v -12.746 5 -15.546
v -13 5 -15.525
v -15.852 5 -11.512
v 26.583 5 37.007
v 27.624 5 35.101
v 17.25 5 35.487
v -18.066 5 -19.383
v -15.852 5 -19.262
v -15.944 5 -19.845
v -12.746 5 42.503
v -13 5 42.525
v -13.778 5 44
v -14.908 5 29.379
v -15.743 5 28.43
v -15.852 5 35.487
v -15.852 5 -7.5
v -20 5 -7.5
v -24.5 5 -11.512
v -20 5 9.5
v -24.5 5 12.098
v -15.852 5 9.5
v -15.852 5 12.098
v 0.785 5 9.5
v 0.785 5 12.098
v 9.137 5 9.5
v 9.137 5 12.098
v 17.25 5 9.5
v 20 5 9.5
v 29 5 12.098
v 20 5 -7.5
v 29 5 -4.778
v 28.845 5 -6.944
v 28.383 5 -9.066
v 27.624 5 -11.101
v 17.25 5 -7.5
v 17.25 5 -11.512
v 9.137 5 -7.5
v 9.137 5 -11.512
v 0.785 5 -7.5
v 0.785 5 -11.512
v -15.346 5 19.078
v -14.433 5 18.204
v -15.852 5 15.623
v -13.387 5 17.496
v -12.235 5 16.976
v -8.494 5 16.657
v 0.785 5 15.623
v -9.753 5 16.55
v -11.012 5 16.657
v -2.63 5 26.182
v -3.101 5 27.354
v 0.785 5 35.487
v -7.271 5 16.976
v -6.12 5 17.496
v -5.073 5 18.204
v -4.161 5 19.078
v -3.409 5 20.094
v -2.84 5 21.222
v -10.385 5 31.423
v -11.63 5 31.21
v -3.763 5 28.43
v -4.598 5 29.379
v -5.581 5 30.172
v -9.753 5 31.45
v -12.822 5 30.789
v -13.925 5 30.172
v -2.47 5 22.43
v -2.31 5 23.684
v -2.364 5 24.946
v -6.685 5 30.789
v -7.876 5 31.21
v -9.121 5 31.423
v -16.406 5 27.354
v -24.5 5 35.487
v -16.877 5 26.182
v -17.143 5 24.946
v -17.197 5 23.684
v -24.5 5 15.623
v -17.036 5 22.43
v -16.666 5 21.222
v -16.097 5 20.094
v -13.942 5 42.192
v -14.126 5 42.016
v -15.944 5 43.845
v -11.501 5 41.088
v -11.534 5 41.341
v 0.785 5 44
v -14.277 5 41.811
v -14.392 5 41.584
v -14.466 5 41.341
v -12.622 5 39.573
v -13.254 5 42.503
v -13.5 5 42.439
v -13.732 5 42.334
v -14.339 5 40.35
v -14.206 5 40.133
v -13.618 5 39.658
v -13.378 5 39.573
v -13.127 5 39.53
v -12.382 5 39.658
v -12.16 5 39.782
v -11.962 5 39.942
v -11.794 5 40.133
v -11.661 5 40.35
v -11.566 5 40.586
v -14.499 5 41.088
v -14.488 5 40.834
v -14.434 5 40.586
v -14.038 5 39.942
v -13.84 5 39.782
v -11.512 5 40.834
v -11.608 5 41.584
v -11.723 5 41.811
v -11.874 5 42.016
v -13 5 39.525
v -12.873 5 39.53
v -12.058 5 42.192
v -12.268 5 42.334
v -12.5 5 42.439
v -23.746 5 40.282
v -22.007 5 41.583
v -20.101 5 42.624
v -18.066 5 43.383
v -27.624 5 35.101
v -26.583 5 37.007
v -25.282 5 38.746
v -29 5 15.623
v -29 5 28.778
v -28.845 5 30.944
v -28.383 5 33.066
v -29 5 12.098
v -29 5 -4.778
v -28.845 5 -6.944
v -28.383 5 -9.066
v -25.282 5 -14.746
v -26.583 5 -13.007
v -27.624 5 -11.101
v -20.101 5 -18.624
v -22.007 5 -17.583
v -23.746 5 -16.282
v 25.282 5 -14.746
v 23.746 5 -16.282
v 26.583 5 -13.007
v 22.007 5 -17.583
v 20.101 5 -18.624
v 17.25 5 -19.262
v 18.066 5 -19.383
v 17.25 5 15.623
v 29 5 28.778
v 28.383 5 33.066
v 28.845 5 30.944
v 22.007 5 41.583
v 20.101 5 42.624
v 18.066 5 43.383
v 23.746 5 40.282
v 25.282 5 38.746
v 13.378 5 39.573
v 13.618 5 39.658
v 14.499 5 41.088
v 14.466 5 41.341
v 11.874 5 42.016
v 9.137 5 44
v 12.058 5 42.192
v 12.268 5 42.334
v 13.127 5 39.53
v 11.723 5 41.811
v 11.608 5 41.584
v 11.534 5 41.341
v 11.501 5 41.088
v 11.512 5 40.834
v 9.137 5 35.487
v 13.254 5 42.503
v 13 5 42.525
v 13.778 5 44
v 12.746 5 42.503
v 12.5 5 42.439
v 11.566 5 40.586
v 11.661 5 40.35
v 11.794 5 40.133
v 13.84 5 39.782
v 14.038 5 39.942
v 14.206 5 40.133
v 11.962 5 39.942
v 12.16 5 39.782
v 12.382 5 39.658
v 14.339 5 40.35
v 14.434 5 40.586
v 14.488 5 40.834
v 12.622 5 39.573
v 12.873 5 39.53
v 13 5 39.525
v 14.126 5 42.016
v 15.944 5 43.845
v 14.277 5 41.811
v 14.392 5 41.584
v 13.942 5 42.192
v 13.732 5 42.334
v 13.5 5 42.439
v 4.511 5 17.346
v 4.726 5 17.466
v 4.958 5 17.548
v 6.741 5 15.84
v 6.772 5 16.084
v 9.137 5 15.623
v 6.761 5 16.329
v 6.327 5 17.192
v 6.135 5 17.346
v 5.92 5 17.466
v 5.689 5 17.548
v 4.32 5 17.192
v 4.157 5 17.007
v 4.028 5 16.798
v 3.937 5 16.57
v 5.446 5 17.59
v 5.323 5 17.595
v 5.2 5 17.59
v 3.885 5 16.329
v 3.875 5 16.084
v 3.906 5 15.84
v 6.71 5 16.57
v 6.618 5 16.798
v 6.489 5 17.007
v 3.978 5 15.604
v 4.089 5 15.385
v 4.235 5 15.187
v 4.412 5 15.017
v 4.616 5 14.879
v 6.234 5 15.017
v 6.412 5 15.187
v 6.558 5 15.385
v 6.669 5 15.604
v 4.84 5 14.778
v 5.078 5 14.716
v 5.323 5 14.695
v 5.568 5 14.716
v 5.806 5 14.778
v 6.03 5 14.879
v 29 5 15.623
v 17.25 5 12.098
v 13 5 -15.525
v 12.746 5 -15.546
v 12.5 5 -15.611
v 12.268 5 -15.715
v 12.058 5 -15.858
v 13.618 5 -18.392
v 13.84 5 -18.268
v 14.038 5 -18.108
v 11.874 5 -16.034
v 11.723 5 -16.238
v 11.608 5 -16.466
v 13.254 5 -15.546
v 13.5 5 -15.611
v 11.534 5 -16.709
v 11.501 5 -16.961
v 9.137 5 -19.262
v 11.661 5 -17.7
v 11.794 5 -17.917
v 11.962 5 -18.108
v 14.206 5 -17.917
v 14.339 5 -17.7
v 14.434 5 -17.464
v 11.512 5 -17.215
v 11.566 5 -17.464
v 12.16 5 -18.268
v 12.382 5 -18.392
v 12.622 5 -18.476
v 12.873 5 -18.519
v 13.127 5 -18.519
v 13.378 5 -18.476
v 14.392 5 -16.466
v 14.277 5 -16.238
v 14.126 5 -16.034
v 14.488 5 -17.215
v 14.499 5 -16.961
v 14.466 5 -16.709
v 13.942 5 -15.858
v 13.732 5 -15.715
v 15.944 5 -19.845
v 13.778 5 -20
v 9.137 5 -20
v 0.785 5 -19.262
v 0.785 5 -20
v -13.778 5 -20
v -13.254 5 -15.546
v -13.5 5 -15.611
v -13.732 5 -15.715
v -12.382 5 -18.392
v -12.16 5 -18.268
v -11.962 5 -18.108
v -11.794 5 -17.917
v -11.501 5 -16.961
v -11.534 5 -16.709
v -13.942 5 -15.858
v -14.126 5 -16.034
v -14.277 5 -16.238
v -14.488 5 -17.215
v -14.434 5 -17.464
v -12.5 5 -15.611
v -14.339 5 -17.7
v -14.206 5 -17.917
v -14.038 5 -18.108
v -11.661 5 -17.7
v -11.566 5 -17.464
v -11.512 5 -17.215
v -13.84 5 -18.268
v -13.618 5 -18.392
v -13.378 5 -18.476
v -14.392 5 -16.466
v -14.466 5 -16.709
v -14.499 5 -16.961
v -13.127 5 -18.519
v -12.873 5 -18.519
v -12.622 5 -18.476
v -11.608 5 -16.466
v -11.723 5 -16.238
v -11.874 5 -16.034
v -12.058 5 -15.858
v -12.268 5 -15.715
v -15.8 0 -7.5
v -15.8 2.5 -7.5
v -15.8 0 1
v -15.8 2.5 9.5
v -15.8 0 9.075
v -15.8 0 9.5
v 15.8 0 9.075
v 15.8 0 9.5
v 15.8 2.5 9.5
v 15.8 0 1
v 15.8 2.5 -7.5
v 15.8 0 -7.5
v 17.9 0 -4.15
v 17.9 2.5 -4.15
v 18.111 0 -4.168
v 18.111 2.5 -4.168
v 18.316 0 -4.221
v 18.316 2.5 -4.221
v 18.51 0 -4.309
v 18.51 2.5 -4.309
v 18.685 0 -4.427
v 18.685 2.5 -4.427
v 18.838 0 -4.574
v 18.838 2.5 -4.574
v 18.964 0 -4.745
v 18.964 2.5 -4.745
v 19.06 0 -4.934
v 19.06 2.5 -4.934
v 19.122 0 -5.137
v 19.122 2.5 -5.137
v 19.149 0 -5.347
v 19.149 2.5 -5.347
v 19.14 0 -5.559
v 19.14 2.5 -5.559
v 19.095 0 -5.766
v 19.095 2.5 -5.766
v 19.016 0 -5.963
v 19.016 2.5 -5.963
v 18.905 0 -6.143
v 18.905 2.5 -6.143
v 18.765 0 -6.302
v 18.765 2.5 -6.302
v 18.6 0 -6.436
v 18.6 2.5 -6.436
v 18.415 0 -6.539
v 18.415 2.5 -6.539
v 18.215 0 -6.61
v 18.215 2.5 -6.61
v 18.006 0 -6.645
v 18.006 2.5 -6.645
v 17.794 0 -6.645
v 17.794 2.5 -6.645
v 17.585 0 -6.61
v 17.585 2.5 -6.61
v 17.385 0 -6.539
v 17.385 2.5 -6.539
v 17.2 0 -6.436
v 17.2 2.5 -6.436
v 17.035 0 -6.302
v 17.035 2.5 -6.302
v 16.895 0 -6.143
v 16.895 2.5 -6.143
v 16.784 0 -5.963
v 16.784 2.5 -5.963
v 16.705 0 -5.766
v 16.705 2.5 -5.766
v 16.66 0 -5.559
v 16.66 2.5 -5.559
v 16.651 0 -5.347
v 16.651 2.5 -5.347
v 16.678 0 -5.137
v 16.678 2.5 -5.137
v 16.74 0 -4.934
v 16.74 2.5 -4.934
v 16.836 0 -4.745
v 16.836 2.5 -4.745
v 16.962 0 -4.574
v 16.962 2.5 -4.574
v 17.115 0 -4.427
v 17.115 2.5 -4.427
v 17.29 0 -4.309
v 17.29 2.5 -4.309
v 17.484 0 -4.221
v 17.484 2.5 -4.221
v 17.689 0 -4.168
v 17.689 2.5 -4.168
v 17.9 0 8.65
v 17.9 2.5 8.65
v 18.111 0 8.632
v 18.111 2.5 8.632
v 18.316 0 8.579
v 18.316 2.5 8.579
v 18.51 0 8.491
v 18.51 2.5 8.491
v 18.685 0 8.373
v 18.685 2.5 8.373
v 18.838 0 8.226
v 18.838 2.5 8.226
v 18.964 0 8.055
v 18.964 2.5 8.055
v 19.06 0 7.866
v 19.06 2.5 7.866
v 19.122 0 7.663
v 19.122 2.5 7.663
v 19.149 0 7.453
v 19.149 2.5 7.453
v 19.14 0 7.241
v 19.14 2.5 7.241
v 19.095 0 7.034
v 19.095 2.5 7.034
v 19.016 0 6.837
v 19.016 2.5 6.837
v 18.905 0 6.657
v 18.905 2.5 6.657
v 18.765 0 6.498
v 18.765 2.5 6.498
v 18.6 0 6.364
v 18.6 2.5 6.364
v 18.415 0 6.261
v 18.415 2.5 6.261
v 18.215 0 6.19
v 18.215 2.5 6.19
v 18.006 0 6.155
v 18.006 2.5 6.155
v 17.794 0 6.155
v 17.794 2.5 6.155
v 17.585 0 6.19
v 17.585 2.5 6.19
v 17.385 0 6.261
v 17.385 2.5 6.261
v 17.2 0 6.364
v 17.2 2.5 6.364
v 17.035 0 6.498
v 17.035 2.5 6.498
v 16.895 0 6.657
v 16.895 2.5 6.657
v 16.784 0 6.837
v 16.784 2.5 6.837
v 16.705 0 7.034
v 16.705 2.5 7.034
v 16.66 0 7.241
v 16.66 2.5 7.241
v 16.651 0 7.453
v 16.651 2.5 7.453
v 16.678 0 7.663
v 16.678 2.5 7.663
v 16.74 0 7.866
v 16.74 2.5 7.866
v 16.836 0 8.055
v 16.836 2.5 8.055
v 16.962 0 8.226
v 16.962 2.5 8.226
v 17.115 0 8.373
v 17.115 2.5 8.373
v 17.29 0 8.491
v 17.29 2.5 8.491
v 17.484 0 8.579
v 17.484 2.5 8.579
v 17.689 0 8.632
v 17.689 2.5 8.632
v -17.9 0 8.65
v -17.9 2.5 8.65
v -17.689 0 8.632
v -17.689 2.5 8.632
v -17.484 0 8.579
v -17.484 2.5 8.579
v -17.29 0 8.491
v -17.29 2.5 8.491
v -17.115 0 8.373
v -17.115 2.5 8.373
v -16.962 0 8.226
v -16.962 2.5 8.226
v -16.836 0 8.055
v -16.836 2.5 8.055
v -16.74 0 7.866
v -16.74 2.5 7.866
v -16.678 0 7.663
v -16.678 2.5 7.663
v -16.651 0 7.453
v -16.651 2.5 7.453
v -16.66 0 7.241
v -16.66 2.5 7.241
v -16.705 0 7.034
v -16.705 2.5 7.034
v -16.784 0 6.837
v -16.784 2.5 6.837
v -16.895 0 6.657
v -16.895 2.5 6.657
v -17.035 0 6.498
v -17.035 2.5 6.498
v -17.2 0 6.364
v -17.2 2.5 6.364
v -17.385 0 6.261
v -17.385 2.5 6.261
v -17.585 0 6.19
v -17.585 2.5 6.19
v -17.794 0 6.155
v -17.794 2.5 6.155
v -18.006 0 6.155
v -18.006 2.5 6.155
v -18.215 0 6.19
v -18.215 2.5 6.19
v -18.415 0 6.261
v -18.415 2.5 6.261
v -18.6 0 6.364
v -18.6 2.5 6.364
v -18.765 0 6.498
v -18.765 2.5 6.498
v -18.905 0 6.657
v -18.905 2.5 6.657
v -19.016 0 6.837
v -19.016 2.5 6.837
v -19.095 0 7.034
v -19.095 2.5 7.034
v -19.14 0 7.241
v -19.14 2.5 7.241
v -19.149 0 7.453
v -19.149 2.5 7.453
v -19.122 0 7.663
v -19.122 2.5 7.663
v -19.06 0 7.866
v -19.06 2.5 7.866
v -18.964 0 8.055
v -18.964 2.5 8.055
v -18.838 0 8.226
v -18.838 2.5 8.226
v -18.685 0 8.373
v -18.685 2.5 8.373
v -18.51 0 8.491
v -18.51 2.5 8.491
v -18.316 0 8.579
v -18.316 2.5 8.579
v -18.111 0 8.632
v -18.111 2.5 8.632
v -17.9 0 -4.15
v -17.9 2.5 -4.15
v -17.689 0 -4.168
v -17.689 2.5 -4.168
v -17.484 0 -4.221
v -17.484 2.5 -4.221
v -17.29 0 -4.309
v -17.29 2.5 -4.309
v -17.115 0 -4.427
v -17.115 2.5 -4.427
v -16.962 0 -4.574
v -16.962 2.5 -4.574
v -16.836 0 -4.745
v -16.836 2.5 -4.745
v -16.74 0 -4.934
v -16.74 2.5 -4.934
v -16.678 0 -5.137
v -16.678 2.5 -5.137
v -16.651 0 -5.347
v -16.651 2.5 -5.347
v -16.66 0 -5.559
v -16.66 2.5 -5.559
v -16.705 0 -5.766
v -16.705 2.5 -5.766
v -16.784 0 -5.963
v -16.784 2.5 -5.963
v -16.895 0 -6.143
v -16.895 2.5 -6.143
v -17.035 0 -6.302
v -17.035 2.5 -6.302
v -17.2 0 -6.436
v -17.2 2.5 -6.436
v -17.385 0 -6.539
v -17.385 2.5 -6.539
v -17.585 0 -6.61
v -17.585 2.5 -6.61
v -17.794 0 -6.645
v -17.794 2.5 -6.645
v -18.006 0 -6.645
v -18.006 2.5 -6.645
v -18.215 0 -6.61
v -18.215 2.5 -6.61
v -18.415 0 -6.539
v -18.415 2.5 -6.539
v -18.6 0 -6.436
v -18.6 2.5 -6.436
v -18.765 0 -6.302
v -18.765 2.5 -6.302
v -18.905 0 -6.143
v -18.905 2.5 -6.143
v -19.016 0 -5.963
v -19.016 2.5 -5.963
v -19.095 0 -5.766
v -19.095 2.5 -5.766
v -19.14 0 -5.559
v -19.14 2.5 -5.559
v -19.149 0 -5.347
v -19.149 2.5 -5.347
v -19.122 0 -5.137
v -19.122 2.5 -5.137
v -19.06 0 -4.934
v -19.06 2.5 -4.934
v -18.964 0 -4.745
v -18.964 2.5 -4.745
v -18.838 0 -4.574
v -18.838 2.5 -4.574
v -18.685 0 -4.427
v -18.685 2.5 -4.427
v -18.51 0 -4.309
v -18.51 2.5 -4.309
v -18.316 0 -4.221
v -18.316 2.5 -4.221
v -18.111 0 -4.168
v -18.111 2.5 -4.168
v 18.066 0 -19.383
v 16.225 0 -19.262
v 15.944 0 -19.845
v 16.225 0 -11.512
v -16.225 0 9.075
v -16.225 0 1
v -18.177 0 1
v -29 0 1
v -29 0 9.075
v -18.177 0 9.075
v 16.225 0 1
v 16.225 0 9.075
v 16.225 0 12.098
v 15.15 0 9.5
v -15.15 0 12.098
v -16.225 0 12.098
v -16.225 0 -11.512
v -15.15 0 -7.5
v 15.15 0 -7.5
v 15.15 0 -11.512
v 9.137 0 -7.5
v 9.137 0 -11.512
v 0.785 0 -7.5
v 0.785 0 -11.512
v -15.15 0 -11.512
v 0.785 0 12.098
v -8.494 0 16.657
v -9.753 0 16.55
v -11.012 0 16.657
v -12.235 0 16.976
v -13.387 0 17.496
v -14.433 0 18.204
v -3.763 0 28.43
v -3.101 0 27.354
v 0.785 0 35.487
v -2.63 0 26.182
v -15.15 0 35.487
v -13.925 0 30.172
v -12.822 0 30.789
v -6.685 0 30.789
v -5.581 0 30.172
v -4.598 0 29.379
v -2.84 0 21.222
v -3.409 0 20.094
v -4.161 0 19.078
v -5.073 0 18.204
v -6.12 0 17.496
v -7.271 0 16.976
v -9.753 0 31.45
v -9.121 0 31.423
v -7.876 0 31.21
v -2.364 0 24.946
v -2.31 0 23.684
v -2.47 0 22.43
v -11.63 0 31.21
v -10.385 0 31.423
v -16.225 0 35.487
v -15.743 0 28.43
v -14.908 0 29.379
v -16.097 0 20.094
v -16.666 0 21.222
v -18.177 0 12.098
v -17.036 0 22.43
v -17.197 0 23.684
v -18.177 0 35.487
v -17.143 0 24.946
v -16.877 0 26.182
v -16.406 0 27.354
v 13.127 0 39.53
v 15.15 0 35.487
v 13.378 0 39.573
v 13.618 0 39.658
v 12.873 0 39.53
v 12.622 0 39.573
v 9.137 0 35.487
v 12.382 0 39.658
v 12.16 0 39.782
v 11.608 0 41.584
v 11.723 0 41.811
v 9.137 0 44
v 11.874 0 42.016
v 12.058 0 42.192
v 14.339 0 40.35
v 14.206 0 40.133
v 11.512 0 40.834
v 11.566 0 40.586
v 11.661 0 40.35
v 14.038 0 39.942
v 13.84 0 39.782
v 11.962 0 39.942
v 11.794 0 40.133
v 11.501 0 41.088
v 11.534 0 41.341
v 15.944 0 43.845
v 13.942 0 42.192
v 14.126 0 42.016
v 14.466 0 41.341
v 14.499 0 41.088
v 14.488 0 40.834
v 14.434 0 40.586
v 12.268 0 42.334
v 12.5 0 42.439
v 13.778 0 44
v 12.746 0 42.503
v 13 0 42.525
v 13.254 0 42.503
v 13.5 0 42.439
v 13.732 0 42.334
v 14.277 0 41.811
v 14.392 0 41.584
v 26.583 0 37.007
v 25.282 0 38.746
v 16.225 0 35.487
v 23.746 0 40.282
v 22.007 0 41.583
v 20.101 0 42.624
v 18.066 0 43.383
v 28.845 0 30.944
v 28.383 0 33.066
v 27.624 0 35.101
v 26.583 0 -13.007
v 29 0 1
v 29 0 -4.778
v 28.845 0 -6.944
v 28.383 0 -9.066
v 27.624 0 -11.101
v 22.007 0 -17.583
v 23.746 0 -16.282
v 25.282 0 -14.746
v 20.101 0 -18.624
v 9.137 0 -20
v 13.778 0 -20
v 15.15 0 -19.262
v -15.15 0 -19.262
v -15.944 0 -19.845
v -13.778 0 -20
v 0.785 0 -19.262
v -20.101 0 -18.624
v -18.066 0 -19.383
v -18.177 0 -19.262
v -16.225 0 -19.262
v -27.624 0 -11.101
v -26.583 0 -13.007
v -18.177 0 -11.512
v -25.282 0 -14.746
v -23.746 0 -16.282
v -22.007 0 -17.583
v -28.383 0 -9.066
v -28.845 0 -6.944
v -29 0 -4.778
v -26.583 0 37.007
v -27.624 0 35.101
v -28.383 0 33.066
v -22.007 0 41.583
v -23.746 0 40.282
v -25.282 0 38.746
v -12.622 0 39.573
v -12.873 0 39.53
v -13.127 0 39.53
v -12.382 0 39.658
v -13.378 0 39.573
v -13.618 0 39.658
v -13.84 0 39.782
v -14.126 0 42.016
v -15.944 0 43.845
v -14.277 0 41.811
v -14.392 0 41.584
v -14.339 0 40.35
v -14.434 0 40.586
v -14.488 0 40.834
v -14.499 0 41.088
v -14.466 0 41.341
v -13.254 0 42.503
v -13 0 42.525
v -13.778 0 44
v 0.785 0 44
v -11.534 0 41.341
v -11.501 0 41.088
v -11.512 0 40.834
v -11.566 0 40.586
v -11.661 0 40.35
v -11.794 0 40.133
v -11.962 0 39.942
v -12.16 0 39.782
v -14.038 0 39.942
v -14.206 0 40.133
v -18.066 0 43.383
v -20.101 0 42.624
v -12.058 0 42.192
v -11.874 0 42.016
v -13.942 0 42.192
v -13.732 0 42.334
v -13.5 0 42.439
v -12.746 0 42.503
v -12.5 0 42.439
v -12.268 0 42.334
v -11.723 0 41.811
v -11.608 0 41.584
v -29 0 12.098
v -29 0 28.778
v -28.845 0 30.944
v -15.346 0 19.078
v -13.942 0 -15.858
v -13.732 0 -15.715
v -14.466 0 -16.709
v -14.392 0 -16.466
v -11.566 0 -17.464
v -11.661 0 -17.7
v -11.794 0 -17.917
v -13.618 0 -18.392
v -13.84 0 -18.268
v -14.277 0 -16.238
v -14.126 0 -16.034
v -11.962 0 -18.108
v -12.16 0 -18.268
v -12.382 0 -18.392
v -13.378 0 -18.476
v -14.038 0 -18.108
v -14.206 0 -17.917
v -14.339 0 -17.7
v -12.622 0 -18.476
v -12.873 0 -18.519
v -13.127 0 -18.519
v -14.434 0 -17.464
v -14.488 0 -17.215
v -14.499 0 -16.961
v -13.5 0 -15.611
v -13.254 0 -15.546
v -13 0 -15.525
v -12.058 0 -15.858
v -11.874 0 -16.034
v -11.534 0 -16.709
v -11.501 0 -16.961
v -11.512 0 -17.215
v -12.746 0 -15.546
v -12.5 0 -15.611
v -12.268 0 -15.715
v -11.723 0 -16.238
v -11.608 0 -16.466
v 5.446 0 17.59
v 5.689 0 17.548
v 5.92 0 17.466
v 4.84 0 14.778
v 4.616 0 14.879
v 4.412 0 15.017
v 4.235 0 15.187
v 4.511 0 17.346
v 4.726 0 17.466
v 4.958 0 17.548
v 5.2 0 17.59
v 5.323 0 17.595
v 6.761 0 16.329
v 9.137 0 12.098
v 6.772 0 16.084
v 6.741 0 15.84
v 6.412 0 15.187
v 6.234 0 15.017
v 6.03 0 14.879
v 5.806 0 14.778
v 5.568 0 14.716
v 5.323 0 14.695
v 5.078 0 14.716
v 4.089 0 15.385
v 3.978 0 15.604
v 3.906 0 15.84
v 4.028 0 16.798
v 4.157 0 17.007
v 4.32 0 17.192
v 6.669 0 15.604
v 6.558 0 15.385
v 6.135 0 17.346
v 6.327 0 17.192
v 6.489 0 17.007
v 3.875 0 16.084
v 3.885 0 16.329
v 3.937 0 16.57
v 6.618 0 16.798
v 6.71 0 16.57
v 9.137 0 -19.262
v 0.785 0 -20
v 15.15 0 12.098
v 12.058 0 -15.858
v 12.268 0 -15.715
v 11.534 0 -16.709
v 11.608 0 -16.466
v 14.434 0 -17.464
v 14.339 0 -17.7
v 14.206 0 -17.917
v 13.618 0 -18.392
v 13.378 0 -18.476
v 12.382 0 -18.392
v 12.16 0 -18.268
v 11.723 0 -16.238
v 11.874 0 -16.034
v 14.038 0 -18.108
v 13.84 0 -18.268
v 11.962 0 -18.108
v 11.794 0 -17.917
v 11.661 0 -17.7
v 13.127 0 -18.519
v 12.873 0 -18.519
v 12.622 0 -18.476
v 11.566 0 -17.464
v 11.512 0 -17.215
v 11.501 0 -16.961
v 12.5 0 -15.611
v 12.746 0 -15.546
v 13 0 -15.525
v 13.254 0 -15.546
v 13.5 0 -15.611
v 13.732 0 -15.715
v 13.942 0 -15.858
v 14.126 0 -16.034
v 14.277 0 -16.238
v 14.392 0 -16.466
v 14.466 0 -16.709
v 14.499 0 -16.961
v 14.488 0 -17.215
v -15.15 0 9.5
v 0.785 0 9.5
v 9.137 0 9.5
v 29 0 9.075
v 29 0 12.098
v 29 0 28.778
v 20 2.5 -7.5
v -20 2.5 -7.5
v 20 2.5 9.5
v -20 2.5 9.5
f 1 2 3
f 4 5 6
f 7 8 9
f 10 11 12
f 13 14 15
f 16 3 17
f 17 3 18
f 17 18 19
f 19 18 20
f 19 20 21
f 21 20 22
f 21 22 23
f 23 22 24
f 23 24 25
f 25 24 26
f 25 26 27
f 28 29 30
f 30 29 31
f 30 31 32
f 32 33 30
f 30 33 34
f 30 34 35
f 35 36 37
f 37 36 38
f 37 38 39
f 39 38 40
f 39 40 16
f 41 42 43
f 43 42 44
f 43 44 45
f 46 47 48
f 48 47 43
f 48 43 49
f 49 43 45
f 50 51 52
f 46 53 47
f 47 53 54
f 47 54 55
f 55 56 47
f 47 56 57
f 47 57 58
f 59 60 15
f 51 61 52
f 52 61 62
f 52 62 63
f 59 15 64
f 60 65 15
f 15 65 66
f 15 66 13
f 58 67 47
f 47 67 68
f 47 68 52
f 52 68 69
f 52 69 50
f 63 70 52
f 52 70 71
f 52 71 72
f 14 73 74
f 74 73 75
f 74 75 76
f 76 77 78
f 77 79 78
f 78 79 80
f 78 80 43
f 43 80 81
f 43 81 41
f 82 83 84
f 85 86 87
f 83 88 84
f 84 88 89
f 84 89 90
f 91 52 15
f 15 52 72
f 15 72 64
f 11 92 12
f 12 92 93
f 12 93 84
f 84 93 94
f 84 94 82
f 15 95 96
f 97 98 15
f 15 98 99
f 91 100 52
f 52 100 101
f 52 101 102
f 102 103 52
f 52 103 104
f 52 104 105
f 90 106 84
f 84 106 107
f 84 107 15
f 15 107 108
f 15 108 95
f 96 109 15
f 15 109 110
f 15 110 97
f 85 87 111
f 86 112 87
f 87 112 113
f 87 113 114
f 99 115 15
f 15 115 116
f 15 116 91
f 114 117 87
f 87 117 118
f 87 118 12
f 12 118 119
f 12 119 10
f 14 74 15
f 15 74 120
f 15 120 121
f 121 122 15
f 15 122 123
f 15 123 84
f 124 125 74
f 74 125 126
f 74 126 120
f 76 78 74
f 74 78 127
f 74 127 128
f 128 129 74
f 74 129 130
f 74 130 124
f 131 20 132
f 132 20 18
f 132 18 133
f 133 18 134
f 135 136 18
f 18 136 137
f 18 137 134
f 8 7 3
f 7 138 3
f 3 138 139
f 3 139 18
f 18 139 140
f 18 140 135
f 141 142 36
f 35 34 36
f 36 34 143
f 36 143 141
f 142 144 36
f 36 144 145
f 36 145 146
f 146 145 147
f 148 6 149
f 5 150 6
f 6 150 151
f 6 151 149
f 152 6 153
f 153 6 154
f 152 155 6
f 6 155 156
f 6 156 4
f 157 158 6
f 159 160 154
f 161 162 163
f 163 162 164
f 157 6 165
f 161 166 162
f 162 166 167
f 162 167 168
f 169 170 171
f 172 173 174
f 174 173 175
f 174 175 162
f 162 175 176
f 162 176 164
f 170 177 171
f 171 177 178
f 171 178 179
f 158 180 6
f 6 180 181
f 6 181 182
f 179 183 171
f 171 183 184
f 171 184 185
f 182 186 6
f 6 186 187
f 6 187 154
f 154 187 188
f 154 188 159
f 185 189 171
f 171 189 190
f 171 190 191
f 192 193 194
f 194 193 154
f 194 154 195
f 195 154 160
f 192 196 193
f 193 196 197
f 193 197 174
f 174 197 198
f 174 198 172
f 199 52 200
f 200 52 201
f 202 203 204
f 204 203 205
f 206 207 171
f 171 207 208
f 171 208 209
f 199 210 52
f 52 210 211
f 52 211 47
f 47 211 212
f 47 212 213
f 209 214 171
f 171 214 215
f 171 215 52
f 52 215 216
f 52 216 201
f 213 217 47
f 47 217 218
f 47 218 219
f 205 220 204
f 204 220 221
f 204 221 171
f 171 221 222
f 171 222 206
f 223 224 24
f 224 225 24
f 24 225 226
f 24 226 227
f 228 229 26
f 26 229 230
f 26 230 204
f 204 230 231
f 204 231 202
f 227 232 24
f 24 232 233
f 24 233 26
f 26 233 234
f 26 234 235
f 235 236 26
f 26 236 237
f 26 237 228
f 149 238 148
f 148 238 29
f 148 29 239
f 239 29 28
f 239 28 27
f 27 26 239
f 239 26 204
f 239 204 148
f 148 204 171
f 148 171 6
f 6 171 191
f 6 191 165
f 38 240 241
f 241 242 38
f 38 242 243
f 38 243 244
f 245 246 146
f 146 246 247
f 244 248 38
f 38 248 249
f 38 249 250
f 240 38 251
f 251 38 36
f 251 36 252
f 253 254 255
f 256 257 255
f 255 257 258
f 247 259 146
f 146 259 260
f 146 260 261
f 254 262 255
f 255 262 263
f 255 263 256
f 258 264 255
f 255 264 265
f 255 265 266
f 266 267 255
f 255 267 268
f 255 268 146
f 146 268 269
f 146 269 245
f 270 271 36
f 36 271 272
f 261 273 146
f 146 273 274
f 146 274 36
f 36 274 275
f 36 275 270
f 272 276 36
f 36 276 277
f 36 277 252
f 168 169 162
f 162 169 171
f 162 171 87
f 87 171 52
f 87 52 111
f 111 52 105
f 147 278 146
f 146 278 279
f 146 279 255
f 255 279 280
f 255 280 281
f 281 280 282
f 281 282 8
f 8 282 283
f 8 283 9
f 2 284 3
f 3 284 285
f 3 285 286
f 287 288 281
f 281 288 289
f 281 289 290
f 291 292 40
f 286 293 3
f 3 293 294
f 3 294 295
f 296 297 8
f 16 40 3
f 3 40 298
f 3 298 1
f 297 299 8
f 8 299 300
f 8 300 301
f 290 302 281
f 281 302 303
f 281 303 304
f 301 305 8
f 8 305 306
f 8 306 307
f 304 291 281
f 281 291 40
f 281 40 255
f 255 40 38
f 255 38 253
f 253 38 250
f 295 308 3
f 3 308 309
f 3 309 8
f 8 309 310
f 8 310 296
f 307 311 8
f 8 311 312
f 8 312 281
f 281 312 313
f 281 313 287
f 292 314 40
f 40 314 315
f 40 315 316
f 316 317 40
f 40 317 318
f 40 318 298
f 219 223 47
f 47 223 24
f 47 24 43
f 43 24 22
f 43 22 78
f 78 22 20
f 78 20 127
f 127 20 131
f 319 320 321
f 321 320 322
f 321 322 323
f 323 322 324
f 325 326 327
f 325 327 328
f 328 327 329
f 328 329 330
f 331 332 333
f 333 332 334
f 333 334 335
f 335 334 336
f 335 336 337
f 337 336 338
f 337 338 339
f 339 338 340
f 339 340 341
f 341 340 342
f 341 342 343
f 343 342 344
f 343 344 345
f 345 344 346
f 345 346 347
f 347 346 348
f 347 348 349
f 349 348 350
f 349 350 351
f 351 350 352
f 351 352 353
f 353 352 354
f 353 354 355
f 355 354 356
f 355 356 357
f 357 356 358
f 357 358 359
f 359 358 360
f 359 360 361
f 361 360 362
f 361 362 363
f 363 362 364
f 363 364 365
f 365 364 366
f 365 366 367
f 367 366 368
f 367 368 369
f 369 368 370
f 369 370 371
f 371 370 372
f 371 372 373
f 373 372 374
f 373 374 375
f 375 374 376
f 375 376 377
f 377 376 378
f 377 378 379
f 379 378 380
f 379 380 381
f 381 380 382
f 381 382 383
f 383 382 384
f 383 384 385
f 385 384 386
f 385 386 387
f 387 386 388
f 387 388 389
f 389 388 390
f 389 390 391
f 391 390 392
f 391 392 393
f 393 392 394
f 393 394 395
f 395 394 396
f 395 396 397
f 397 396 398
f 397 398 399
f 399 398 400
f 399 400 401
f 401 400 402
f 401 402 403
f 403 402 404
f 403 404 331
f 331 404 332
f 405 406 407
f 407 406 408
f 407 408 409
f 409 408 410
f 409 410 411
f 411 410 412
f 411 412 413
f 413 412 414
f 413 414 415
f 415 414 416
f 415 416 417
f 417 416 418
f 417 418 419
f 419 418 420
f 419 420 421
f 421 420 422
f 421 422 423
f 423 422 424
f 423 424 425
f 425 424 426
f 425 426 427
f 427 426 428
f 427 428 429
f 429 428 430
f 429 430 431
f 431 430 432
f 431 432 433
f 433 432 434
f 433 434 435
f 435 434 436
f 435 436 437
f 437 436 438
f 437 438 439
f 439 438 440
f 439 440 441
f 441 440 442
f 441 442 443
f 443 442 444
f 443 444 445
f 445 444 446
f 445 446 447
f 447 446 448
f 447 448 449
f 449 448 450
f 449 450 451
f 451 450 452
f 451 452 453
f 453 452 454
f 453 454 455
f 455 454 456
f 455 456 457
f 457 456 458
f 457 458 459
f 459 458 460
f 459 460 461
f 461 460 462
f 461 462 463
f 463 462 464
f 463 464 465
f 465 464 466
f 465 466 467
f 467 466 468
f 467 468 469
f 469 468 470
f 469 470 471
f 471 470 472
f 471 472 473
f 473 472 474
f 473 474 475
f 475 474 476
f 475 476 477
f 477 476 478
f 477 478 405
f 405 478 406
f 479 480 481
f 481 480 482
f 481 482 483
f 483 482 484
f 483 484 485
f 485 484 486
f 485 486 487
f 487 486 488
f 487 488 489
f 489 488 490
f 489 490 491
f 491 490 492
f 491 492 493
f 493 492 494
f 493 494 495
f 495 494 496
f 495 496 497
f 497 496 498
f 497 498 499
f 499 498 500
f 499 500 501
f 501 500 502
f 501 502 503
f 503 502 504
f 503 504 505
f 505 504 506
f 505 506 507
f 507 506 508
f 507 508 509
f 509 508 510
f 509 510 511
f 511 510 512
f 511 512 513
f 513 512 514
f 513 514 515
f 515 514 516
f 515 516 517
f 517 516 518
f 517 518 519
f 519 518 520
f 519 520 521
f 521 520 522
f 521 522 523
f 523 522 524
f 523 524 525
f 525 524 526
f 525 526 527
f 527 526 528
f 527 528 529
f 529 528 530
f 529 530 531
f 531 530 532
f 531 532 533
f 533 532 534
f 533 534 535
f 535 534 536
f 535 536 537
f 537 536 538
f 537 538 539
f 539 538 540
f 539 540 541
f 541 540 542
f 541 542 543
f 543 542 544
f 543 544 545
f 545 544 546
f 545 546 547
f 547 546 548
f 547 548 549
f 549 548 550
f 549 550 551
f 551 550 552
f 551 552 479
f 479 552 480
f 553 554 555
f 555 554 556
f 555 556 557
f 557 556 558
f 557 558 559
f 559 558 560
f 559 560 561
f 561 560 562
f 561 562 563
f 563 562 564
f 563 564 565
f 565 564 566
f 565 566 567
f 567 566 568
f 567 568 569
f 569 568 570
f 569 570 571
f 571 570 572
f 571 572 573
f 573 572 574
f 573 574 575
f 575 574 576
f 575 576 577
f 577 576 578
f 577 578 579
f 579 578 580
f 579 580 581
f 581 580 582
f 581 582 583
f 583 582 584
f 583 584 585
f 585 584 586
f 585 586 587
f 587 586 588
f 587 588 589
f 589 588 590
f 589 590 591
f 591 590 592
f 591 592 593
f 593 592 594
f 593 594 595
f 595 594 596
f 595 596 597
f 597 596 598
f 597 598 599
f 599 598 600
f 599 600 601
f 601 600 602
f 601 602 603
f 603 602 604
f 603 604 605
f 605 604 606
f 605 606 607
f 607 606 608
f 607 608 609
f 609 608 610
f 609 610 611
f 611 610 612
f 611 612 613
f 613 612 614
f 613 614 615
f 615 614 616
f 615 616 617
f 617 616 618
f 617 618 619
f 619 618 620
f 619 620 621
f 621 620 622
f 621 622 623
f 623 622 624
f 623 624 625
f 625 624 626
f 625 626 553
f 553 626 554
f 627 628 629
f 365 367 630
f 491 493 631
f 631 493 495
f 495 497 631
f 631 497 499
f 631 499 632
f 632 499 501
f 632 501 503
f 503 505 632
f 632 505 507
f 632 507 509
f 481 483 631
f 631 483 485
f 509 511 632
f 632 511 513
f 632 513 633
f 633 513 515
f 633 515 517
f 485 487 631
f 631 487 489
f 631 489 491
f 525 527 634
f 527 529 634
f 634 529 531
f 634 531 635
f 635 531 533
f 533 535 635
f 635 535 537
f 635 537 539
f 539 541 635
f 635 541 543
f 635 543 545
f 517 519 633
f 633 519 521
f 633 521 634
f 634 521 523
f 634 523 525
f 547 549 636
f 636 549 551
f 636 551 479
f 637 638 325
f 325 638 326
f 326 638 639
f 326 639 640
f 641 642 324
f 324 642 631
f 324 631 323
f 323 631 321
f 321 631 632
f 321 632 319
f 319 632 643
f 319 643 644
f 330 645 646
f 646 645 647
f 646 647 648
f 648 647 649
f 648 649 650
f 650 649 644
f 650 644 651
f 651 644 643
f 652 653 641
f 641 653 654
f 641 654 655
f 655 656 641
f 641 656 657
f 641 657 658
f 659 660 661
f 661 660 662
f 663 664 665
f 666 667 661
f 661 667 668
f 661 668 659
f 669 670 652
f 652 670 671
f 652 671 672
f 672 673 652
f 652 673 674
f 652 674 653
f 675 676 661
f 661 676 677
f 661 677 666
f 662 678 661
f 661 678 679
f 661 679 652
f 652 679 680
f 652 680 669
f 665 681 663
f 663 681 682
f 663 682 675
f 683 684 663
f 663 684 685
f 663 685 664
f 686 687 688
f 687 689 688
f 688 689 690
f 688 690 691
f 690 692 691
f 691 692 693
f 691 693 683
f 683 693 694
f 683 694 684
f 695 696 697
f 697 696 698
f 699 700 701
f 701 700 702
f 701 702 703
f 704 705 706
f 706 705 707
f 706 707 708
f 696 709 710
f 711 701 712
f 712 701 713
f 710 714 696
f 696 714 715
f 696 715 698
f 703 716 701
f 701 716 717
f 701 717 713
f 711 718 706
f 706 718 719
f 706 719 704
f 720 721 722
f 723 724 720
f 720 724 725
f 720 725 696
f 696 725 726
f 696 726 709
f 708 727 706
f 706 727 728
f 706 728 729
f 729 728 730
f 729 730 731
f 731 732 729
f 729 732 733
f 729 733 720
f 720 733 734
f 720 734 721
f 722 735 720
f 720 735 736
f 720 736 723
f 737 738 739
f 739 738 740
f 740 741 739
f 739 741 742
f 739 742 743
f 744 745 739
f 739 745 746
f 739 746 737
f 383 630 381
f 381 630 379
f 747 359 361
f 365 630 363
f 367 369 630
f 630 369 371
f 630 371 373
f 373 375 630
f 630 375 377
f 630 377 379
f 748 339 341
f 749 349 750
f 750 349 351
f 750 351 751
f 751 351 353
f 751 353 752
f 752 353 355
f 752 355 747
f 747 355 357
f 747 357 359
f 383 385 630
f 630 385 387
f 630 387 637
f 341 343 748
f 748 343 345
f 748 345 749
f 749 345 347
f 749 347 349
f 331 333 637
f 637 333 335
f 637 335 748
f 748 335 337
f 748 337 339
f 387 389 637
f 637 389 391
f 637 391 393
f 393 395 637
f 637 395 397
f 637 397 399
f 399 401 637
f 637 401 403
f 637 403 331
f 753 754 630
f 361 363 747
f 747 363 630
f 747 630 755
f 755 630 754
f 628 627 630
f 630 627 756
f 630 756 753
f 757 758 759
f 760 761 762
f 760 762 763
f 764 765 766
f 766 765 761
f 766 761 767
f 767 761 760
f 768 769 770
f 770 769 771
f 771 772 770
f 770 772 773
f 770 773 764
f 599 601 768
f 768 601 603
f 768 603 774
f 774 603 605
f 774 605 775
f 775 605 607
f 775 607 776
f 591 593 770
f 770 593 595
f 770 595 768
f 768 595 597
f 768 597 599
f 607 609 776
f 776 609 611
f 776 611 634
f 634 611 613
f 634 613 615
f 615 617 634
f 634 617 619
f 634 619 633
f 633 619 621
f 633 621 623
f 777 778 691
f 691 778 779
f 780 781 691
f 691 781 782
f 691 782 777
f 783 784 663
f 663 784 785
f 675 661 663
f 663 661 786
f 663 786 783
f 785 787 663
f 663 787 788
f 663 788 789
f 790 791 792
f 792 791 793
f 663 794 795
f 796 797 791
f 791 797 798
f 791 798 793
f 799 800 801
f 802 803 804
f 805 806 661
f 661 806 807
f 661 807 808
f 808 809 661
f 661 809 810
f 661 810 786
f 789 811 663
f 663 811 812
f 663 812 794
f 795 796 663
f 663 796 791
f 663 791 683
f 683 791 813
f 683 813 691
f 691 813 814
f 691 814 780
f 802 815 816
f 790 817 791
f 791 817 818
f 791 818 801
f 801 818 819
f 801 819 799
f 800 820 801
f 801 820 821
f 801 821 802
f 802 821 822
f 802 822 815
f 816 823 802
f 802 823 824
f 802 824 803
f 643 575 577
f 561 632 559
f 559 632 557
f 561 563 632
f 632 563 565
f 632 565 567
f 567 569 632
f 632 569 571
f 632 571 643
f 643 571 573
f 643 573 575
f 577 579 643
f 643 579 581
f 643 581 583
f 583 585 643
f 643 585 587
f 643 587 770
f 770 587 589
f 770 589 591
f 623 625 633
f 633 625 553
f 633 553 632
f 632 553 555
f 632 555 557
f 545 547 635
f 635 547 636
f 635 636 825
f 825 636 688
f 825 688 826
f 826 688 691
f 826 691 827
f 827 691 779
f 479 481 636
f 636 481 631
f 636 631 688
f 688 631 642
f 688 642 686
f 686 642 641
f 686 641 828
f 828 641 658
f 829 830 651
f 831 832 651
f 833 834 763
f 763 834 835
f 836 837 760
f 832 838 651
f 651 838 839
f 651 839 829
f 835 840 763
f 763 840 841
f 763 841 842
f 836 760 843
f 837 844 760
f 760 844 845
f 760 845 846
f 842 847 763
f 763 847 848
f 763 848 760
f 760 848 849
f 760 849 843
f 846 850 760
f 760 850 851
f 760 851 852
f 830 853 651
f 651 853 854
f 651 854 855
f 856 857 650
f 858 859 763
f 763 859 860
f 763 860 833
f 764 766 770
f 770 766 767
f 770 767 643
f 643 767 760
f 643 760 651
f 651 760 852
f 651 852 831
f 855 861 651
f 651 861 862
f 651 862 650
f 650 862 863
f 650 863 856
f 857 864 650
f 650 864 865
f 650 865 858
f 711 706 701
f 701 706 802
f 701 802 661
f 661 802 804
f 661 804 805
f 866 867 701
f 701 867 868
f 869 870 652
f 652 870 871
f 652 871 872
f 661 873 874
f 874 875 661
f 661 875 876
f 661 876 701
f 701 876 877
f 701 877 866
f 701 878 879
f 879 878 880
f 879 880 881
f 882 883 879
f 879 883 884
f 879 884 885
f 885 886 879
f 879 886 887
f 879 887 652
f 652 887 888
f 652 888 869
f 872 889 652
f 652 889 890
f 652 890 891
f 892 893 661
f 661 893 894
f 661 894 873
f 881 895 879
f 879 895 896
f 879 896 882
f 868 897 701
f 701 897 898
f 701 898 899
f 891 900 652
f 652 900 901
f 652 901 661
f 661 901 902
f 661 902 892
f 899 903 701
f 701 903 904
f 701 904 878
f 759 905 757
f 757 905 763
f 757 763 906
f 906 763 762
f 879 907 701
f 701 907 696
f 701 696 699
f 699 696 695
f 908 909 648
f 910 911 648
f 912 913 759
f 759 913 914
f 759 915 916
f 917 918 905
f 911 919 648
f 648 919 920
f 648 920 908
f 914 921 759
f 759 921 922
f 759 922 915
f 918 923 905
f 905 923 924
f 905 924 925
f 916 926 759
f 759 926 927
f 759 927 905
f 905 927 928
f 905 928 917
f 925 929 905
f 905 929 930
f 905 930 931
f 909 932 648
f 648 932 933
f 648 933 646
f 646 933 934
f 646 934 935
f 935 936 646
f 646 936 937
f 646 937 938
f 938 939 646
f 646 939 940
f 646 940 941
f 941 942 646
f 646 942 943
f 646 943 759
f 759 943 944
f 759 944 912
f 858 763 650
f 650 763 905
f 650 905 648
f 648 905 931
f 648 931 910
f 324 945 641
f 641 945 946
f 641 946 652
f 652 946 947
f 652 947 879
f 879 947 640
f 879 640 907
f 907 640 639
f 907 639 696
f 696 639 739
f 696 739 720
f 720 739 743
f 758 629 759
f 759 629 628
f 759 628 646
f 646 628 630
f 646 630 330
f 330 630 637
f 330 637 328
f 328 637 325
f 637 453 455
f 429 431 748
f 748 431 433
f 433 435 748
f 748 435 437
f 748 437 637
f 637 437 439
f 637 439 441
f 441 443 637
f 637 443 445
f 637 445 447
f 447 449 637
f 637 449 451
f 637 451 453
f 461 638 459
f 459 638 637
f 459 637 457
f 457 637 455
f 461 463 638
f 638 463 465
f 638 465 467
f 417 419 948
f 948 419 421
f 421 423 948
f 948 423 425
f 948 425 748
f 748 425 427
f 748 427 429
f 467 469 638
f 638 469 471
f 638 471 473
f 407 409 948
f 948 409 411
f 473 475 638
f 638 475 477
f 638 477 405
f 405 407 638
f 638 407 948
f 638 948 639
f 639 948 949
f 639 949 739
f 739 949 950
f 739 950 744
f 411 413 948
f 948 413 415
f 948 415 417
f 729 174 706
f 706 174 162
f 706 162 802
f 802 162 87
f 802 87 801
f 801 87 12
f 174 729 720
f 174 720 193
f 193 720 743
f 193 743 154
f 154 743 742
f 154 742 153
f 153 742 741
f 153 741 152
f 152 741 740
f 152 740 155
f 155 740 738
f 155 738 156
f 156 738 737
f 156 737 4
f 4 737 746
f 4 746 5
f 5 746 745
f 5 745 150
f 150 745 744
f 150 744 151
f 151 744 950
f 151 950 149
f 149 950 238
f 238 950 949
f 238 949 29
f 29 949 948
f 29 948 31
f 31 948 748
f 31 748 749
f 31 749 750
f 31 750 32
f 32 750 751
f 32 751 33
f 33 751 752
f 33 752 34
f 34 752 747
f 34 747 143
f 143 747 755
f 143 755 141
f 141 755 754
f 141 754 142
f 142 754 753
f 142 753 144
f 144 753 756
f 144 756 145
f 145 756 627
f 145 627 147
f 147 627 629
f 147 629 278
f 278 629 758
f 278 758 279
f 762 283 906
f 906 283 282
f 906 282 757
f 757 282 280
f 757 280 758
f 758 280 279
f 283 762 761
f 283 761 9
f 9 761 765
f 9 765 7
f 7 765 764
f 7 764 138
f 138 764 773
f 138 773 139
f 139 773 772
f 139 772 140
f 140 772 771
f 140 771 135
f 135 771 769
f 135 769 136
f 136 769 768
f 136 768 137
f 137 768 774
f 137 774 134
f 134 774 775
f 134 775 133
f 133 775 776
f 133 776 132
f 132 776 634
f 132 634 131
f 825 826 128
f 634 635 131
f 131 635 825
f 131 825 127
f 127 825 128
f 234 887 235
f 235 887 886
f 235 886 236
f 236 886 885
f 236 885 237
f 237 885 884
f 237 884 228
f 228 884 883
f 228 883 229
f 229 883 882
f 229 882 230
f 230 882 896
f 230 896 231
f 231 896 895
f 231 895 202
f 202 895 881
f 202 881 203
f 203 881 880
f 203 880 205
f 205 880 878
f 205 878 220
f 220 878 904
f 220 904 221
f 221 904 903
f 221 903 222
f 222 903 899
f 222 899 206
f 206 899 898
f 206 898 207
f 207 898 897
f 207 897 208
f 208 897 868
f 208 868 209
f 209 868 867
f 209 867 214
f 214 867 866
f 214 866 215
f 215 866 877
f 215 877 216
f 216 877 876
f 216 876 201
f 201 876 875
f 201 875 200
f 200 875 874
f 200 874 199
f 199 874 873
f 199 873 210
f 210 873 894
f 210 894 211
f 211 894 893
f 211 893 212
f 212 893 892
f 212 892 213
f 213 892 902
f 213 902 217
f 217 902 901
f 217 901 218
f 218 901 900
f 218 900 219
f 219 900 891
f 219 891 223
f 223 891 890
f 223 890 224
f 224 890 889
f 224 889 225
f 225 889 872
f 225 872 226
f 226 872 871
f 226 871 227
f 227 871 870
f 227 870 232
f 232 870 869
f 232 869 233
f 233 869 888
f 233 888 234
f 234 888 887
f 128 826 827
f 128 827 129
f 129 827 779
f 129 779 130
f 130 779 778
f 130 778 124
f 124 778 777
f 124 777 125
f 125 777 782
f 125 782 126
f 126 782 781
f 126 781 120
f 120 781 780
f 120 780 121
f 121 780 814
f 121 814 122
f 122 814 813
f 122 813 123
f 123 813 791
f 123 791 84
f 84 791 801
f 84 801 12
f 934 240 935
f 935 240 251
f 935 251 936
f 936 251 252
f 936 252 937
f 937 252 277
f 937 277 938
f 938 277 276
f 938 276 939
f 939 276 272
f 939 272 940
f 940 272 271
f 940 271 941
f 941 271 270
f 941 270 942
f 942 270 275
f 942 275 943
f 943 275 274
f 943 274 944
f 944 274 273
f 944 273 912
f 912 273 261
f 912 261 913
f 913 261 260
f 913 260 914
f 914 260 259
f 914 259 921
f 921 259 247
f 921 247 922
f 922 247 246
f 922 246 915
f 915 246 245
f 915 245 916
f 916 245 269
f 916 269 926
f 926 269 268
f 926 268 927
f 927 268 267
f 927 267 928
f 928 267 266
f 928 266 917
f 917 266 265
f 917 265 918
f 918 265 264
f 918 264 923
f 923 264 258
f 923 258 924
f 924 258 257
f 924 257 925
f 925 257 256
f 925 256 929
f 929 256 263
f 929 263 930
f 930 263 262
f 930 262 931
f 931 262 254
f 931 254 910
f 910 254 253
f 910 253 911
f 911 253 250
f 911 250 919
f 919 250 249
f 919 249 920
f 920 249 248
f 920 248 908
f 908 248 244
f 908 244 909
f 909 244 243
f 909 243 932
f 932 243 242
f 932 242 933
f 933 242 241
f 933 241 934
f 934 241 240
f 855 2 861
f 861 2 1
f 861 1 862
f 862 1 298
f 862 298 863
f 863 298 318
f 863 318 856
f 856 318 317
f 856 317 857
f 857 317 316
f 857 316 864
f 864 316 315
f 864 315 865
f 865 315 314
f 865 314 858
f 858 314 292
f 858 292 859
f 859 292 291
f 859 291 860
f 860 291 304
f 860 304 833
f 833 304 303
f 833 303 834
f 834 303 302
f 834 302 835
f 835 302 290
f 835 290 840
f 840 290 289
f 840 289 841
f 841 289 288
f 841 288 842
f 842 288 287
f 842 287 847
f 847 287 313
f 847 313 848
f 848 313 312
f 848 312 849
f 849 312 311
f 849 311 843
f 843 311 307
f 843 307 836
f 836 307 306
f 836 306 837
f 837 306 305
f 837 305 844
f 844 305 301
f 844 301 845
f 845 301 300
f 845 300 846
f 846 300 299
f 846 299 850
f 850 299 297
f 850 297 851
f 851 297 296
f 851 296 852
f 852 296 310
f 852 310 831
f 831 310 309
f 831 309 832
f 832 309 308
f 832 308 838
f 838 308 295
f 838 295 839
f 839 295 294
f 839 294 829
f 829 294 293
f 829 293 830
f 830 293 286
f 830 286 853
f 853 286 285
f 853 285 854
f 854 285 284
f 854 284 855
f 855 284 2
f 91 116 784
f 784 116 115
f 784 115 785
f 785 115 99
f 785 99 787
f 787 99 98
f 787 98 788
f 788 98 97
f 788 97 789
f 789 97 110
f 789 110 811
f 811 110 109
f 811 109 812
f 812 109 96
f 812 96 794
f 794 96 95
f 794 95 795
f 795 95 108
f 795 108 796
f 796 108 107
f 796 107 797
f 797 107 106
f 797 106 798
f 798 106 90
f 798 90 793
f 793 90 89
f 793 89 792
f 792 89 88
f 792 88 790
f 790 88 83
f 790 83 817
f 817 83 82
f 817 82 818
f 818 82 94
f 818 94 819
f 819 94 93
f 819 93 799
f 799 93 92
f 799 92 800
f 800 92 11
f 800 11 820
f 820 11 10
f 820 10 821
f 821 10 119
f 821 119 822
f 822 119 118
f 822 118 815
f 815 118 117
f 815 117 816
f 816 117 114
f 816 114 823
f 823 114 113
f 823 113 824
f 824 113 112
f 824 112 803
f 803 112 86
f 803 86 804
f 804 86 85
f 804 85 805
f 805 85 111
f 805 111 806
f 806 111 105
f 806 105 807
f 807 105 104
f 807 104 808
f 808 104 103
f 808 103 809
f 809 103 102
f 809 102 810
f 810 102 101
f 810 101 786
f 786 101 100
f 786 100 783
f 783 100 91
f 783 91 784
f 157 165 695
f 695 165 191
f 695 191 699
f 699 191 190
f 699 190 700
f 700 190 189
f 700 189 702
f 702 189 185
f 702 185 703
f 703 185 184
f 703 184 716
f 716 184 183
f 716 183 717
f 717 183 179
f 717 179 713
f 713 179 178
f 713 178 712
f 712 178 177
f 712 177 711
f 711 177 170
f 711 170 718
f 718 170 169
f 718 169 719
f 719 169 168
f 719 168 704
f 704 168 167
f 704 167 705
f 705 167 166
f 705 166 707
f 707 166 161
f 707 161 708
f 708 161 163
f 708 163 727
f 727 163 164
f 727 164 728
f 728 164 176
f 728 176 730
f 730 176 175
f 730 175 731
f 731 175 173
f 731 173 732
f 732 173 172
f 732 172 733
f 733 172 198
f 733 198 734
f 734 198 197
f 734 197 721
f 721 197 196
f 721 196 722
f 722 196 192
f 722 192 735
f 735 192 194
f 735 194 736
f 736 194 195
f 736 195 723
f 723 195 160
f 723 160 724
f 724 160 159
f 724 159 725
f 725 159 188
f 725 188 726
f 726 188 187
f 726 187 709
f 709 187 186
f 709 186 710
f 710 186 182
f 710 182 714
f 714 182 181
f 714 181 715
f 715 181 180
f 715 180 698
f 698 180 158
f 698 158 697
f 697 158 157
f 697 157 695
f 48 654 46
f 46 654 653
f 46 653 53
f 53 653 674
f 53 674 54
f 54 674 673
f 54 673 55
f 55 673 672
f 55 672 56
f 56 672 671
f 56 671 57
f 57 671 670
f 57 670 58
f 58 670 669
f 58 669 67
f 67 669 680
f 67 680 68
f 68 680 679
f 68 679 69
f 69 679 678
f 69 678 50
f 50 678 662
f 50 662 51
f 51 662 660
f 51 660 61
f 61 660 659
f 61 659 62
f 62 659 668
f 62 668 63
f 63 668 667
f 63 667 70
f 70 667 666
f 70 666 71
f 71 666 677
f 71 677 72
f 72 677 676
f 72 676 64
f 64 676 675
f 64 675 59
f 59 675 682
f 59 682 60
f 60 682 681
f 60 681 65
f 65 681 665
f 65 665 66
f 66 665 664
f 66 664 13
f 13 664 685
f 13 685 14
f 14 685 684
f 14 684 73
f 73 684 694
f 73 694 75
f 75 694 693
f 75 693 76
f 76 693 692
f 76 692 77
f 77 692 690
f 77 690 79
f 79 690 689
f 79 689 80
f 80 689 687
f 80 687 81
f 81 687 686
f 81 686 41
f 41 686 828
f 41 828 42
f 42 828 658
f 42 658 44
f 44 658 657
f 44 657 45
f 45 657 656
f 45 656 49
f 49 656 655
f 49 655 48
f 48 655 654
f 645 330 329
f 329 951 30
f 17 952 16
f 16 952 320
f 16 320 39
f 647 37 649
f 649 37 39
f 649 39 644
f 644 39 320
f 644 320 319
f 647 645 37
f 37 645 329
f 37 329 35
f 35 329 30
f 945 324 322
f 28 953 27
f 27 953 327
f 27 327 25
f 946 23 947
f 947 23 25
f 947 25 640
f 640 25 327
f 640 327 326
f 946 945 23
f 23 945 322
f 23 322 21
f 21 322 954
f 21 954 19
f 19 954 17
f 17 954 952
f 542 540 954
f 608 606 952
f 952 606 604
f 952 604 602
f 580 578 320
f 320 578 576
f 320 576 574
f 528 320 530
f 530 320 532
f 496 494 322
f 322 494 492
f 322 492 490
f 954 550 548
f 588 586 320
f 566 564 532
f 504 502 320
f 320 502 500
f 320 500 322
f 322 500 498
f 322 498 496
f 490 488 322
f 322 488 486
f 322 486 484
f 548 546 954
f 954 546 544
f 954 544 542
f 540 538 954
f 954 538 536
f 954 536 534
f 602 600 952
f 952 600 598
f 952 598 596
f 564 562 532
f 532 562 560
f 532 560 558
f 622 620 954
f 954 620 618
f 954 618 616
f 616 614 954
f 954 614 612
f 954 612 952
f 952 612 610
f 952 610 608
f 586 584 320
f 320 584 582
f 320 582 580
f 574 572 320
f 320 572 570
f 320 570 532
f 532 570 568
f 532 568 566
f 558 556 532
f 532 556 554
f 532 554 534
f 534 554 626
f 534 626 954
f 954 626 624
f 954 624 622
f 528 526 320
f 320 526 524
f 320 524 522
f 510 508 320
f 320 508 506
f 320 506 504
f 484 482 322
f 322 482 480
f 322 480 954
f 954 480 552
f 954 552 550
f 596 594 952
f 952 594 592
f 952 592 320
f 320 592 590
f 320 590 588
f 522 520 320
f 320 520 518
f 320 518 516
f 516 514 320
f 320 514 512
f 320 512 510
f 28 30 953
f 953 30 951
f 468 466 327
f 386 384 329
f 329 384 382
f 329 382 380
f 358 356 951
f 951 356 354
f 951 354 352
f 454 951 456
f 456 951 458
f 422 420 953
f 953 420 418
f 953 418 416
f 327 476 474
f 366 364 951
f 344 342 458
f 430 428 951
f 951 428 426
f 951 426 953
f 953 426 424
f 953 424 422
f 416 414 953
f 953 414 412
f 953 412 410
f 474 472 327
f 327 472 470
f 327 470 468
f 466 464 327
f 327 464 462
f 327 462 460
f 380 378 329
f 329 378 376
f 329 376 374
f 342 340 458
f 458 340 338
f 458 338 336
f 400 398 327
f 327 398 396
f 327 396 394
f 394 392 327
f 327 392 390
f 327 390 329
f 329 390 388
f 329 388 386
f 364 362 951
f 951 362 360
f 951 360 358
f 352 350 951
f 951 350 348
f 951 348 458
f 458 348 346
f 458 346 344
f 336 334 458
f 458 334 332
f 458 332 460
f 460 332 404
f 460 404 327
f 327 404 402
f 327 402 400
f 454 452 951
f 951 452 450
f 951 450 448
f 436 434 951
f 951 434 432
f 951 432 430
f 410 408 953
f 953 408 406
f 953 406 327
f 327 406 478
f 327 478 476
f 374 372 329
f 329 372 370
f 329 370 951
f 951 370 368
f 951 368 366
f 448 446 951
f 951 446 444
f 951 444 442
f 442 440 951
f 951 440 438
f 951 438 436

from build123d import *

# Parameters (mm, degrees)
SKETCH1_R           = 1.45
SKETCH1_R_2         = 2
BOSS_EXTRUDE1_DEPTH = 5
SKETCH4_R           = 1.5
CUT_EXTRUDE2_DEPTH  = 5
SKETCH5_4_R         = 7.45
CUT_EXTRUDE6_DEPTH  = 5
SKETCH6_W           = 31.6
SKETCH6_H           = 17
SKETCH6_R           = 1.25
CUT_EXTRUDE8_DEPTH  = 5
SKETCH6_4_W         = 4.2
SKETCH6_4_H         = 4.2
SKETCH6_4_R         = 1.25
SKETCH6_4_H_2       = 8.6
CUT_EXTRUDE9_DEPTH  = 2.5


with BuildPart() as part:
    # Sketch1 → Boss-Extrude1 (new body)
    with BuildSketch(Plane(origin=(0, 0, 0), x_dir=(1, 0, 0), z_dir=(0, 1, 0))):
        with BuildLine():
            Line((-29, -28.777515286), (-29, 4.777515286))
            ThreePointArc((-29, 4.777515286), (-24.541437454, 15.541437454), (-13.777515286, 20))
            Line((-13.777515286, 20), (13.777515286, 20))
            ThreePointArc((13.777515286, 20), (24.541437454, 15.541437454), (29, 4.777515286))
            Line((29, 4.777515286), (29, -28.777515286))
            ThreePointArc((29, -28.777515286), (24.541437454, -39.541437454), (13.777515286, -44))
            Line((13.777515286, -44), (-13.777515286, -44))
            ThreePointArc((-13.777515286, -44), (-24.541437454, -39.541437454), (-29, -28.777515286))
        make_face()
        with Locations(Location((5.323230148, -16.145068002, 0), (0, 0, 270))):
            Circle(SKETCH1_R, mode=Mode.SUBTRACT)
        with Locations(Location((-9.753243024, -24, 0), (0, 0, 270))):
            Circle(SKETCH1_R_2, mode=Mode.SUBTRACT)
    extrude(amount=BOSS_EXTRUDE1_DEPTH)

    # Sketch4 → Cut-Extrude2 (cut)
    with BuildSketch(Plane(origin=(0, 5, 0), x_dir=(1, 0, 0), z_dir=(0, 1, 0))):
        with Locations(Location((13, 17.024816986, 0), (0, 0, 270))):
            Circle(SKETCH4_R)
        with Locations(Location((-13, 17.024816986, 0), (0, 0, 270))):
            Circle(SKETCH4_R)
        with Locations(Location((-13, -41.024816986, 0), (0, 0, 270))):
            Circle(SKETCH4_R)
        with Locations(Location((13, -41.024816986, 0), (0, 0, 270))):
            Circle(SKETCH4_R)
    extrude(amount=-CUT_EXTRUDE2_DEPTH, mode=Mode.SUBTRACT)

    # Sketch5<4> → Cut-Extrude6 (cut)
    with BuildSketch(Plane(origin=(0, 0, 0), x_dir=(1, 0, 0), z_dir=(0, 1, 0))):
        with Locations(Location((-9.753243024, -24, 0), (0, 0, 270))):
            Circle(SKETCH5_4_R)
    extrude(amount=CUT_EXTRUDE6_DEPTH, mode=Mode.SUBTRACT)

    # Sketch6 → Cut-Extrude8 (cut)
    with BuildSketch(Plane(origin=(0, 5, 0), x_dir=(1, 0, 0), z_dir=(0, 1, 0))):
        with Locations((0, -1)):
            Rectangle(SKETCH6_W, SKETCH6_H)
        with Locations(Location((-17.9, 5.4, 0), (0, 0, 270))):
            Circle(SKETCH6_R)
        with Locations(Location((-17.9, -7.4, 0), (0, 0, 270))):
            Circle(SKETCH6_R)
        with Locations(Location((17.9, 5.4, 0), (0, 0, 270))):
            Circle(SKETCH6_R)
        with Locations(Location((17.9, -7.4, 0), (0, 0, 270))):
            Circle(SKETCH6_R)
    extrude(amount=-CUT_EXTRUDE8_DEPTH, mode=Mode.SUBTRACT)

    # Sketch6<4> → Cut-Extrude9 (cut)
    # profile 1 of 6: a face of its own
    with BuildSketch(Plane(origin=(0, 5, 0), x_dir=(1, 0, 0), z_dir=(0, 1, 0))):
        with Locations((-17.9, 5.4)):
            Rectangle(SKETCH6_4_W, SKETCH6_4_H)
        with Locations(Location((-17.9, 5.4, 0), (0, 0, 270))):
            Circle(SKETCH6_4_R, mode=Mode.SUBTRACT)
    # profile 2 of 6: a face of its own
    with BuildSketch(Plane(origin=(0, 5, 0), x_dir=(1, 0, 0), z_dir=(0, 1, 0))):
        with Locations((17.9, 5.4)):
            Rectangle(SKETCH6_4_W, SKETCH6_4_H)
        with Locations(Location((17.9, 5.4, 0), (0, 0, 270))):
            Circle(SKETCH6_4_R, mode=Mode.SUBTRACT)
    # profile 3 of 6: a face of its own
    with BuildSketch(Plane(origin=(0, 5, 0), x_dir=(1, 0, 0), z_dir=(0, 1, 0))):
        with Locations((-17.9, -7.4)):
            Rectangle(SKETCH6_4_W, SKETCH6_4_H)
        with Locations(Location((-17.9, -7.4, 0), (0, 0, 270))):
            Circle(SKETCH6_4_R, mode=Mode.SUBTRACT)
    # profile 4 of 6: a face of its own
    with BuildSketch(Plane(origin=(0, 5, 0), x_dir=(1, 0, 0), z_dir=(0, 1, 0))):
        with Locations((17.9, -7.4)):
            Rectangle(SKETCH6_4_W, SKETCH6_4_H)
        with Locations(Location((17.9, -7.4, 0), (0, 0, 270))):
            Circle(SKETCH6_4_R, mode=Mode.SUBTRACT)
    # profile 5 of 6: a face of its own
    with BuildSketch(Plane(origin=(0, 5, 0), x_dir=(1, 0, 0), z_dir=(0, 1, 0))):
        with Locations((-17.9, -1)):
            Rectangle(SKETCH6_4_W, SKETCH6_4_H_2)
    # profile 6 of 6: a face of its own
    with BuildSketch(Plane(origin=(0, 5, 0), x_dir=(1, 0, 0), z_dir=(0, 1, 0))):
        with Locations((17.9, -1)):
            Rectangle(SKETCH6_4_W, SKETCH6_4_H_2)
    extrude(amount=-CUT_EXTRUDE9_DEPTH, mode=Mode.SUBTRACT)


solid = part.part
